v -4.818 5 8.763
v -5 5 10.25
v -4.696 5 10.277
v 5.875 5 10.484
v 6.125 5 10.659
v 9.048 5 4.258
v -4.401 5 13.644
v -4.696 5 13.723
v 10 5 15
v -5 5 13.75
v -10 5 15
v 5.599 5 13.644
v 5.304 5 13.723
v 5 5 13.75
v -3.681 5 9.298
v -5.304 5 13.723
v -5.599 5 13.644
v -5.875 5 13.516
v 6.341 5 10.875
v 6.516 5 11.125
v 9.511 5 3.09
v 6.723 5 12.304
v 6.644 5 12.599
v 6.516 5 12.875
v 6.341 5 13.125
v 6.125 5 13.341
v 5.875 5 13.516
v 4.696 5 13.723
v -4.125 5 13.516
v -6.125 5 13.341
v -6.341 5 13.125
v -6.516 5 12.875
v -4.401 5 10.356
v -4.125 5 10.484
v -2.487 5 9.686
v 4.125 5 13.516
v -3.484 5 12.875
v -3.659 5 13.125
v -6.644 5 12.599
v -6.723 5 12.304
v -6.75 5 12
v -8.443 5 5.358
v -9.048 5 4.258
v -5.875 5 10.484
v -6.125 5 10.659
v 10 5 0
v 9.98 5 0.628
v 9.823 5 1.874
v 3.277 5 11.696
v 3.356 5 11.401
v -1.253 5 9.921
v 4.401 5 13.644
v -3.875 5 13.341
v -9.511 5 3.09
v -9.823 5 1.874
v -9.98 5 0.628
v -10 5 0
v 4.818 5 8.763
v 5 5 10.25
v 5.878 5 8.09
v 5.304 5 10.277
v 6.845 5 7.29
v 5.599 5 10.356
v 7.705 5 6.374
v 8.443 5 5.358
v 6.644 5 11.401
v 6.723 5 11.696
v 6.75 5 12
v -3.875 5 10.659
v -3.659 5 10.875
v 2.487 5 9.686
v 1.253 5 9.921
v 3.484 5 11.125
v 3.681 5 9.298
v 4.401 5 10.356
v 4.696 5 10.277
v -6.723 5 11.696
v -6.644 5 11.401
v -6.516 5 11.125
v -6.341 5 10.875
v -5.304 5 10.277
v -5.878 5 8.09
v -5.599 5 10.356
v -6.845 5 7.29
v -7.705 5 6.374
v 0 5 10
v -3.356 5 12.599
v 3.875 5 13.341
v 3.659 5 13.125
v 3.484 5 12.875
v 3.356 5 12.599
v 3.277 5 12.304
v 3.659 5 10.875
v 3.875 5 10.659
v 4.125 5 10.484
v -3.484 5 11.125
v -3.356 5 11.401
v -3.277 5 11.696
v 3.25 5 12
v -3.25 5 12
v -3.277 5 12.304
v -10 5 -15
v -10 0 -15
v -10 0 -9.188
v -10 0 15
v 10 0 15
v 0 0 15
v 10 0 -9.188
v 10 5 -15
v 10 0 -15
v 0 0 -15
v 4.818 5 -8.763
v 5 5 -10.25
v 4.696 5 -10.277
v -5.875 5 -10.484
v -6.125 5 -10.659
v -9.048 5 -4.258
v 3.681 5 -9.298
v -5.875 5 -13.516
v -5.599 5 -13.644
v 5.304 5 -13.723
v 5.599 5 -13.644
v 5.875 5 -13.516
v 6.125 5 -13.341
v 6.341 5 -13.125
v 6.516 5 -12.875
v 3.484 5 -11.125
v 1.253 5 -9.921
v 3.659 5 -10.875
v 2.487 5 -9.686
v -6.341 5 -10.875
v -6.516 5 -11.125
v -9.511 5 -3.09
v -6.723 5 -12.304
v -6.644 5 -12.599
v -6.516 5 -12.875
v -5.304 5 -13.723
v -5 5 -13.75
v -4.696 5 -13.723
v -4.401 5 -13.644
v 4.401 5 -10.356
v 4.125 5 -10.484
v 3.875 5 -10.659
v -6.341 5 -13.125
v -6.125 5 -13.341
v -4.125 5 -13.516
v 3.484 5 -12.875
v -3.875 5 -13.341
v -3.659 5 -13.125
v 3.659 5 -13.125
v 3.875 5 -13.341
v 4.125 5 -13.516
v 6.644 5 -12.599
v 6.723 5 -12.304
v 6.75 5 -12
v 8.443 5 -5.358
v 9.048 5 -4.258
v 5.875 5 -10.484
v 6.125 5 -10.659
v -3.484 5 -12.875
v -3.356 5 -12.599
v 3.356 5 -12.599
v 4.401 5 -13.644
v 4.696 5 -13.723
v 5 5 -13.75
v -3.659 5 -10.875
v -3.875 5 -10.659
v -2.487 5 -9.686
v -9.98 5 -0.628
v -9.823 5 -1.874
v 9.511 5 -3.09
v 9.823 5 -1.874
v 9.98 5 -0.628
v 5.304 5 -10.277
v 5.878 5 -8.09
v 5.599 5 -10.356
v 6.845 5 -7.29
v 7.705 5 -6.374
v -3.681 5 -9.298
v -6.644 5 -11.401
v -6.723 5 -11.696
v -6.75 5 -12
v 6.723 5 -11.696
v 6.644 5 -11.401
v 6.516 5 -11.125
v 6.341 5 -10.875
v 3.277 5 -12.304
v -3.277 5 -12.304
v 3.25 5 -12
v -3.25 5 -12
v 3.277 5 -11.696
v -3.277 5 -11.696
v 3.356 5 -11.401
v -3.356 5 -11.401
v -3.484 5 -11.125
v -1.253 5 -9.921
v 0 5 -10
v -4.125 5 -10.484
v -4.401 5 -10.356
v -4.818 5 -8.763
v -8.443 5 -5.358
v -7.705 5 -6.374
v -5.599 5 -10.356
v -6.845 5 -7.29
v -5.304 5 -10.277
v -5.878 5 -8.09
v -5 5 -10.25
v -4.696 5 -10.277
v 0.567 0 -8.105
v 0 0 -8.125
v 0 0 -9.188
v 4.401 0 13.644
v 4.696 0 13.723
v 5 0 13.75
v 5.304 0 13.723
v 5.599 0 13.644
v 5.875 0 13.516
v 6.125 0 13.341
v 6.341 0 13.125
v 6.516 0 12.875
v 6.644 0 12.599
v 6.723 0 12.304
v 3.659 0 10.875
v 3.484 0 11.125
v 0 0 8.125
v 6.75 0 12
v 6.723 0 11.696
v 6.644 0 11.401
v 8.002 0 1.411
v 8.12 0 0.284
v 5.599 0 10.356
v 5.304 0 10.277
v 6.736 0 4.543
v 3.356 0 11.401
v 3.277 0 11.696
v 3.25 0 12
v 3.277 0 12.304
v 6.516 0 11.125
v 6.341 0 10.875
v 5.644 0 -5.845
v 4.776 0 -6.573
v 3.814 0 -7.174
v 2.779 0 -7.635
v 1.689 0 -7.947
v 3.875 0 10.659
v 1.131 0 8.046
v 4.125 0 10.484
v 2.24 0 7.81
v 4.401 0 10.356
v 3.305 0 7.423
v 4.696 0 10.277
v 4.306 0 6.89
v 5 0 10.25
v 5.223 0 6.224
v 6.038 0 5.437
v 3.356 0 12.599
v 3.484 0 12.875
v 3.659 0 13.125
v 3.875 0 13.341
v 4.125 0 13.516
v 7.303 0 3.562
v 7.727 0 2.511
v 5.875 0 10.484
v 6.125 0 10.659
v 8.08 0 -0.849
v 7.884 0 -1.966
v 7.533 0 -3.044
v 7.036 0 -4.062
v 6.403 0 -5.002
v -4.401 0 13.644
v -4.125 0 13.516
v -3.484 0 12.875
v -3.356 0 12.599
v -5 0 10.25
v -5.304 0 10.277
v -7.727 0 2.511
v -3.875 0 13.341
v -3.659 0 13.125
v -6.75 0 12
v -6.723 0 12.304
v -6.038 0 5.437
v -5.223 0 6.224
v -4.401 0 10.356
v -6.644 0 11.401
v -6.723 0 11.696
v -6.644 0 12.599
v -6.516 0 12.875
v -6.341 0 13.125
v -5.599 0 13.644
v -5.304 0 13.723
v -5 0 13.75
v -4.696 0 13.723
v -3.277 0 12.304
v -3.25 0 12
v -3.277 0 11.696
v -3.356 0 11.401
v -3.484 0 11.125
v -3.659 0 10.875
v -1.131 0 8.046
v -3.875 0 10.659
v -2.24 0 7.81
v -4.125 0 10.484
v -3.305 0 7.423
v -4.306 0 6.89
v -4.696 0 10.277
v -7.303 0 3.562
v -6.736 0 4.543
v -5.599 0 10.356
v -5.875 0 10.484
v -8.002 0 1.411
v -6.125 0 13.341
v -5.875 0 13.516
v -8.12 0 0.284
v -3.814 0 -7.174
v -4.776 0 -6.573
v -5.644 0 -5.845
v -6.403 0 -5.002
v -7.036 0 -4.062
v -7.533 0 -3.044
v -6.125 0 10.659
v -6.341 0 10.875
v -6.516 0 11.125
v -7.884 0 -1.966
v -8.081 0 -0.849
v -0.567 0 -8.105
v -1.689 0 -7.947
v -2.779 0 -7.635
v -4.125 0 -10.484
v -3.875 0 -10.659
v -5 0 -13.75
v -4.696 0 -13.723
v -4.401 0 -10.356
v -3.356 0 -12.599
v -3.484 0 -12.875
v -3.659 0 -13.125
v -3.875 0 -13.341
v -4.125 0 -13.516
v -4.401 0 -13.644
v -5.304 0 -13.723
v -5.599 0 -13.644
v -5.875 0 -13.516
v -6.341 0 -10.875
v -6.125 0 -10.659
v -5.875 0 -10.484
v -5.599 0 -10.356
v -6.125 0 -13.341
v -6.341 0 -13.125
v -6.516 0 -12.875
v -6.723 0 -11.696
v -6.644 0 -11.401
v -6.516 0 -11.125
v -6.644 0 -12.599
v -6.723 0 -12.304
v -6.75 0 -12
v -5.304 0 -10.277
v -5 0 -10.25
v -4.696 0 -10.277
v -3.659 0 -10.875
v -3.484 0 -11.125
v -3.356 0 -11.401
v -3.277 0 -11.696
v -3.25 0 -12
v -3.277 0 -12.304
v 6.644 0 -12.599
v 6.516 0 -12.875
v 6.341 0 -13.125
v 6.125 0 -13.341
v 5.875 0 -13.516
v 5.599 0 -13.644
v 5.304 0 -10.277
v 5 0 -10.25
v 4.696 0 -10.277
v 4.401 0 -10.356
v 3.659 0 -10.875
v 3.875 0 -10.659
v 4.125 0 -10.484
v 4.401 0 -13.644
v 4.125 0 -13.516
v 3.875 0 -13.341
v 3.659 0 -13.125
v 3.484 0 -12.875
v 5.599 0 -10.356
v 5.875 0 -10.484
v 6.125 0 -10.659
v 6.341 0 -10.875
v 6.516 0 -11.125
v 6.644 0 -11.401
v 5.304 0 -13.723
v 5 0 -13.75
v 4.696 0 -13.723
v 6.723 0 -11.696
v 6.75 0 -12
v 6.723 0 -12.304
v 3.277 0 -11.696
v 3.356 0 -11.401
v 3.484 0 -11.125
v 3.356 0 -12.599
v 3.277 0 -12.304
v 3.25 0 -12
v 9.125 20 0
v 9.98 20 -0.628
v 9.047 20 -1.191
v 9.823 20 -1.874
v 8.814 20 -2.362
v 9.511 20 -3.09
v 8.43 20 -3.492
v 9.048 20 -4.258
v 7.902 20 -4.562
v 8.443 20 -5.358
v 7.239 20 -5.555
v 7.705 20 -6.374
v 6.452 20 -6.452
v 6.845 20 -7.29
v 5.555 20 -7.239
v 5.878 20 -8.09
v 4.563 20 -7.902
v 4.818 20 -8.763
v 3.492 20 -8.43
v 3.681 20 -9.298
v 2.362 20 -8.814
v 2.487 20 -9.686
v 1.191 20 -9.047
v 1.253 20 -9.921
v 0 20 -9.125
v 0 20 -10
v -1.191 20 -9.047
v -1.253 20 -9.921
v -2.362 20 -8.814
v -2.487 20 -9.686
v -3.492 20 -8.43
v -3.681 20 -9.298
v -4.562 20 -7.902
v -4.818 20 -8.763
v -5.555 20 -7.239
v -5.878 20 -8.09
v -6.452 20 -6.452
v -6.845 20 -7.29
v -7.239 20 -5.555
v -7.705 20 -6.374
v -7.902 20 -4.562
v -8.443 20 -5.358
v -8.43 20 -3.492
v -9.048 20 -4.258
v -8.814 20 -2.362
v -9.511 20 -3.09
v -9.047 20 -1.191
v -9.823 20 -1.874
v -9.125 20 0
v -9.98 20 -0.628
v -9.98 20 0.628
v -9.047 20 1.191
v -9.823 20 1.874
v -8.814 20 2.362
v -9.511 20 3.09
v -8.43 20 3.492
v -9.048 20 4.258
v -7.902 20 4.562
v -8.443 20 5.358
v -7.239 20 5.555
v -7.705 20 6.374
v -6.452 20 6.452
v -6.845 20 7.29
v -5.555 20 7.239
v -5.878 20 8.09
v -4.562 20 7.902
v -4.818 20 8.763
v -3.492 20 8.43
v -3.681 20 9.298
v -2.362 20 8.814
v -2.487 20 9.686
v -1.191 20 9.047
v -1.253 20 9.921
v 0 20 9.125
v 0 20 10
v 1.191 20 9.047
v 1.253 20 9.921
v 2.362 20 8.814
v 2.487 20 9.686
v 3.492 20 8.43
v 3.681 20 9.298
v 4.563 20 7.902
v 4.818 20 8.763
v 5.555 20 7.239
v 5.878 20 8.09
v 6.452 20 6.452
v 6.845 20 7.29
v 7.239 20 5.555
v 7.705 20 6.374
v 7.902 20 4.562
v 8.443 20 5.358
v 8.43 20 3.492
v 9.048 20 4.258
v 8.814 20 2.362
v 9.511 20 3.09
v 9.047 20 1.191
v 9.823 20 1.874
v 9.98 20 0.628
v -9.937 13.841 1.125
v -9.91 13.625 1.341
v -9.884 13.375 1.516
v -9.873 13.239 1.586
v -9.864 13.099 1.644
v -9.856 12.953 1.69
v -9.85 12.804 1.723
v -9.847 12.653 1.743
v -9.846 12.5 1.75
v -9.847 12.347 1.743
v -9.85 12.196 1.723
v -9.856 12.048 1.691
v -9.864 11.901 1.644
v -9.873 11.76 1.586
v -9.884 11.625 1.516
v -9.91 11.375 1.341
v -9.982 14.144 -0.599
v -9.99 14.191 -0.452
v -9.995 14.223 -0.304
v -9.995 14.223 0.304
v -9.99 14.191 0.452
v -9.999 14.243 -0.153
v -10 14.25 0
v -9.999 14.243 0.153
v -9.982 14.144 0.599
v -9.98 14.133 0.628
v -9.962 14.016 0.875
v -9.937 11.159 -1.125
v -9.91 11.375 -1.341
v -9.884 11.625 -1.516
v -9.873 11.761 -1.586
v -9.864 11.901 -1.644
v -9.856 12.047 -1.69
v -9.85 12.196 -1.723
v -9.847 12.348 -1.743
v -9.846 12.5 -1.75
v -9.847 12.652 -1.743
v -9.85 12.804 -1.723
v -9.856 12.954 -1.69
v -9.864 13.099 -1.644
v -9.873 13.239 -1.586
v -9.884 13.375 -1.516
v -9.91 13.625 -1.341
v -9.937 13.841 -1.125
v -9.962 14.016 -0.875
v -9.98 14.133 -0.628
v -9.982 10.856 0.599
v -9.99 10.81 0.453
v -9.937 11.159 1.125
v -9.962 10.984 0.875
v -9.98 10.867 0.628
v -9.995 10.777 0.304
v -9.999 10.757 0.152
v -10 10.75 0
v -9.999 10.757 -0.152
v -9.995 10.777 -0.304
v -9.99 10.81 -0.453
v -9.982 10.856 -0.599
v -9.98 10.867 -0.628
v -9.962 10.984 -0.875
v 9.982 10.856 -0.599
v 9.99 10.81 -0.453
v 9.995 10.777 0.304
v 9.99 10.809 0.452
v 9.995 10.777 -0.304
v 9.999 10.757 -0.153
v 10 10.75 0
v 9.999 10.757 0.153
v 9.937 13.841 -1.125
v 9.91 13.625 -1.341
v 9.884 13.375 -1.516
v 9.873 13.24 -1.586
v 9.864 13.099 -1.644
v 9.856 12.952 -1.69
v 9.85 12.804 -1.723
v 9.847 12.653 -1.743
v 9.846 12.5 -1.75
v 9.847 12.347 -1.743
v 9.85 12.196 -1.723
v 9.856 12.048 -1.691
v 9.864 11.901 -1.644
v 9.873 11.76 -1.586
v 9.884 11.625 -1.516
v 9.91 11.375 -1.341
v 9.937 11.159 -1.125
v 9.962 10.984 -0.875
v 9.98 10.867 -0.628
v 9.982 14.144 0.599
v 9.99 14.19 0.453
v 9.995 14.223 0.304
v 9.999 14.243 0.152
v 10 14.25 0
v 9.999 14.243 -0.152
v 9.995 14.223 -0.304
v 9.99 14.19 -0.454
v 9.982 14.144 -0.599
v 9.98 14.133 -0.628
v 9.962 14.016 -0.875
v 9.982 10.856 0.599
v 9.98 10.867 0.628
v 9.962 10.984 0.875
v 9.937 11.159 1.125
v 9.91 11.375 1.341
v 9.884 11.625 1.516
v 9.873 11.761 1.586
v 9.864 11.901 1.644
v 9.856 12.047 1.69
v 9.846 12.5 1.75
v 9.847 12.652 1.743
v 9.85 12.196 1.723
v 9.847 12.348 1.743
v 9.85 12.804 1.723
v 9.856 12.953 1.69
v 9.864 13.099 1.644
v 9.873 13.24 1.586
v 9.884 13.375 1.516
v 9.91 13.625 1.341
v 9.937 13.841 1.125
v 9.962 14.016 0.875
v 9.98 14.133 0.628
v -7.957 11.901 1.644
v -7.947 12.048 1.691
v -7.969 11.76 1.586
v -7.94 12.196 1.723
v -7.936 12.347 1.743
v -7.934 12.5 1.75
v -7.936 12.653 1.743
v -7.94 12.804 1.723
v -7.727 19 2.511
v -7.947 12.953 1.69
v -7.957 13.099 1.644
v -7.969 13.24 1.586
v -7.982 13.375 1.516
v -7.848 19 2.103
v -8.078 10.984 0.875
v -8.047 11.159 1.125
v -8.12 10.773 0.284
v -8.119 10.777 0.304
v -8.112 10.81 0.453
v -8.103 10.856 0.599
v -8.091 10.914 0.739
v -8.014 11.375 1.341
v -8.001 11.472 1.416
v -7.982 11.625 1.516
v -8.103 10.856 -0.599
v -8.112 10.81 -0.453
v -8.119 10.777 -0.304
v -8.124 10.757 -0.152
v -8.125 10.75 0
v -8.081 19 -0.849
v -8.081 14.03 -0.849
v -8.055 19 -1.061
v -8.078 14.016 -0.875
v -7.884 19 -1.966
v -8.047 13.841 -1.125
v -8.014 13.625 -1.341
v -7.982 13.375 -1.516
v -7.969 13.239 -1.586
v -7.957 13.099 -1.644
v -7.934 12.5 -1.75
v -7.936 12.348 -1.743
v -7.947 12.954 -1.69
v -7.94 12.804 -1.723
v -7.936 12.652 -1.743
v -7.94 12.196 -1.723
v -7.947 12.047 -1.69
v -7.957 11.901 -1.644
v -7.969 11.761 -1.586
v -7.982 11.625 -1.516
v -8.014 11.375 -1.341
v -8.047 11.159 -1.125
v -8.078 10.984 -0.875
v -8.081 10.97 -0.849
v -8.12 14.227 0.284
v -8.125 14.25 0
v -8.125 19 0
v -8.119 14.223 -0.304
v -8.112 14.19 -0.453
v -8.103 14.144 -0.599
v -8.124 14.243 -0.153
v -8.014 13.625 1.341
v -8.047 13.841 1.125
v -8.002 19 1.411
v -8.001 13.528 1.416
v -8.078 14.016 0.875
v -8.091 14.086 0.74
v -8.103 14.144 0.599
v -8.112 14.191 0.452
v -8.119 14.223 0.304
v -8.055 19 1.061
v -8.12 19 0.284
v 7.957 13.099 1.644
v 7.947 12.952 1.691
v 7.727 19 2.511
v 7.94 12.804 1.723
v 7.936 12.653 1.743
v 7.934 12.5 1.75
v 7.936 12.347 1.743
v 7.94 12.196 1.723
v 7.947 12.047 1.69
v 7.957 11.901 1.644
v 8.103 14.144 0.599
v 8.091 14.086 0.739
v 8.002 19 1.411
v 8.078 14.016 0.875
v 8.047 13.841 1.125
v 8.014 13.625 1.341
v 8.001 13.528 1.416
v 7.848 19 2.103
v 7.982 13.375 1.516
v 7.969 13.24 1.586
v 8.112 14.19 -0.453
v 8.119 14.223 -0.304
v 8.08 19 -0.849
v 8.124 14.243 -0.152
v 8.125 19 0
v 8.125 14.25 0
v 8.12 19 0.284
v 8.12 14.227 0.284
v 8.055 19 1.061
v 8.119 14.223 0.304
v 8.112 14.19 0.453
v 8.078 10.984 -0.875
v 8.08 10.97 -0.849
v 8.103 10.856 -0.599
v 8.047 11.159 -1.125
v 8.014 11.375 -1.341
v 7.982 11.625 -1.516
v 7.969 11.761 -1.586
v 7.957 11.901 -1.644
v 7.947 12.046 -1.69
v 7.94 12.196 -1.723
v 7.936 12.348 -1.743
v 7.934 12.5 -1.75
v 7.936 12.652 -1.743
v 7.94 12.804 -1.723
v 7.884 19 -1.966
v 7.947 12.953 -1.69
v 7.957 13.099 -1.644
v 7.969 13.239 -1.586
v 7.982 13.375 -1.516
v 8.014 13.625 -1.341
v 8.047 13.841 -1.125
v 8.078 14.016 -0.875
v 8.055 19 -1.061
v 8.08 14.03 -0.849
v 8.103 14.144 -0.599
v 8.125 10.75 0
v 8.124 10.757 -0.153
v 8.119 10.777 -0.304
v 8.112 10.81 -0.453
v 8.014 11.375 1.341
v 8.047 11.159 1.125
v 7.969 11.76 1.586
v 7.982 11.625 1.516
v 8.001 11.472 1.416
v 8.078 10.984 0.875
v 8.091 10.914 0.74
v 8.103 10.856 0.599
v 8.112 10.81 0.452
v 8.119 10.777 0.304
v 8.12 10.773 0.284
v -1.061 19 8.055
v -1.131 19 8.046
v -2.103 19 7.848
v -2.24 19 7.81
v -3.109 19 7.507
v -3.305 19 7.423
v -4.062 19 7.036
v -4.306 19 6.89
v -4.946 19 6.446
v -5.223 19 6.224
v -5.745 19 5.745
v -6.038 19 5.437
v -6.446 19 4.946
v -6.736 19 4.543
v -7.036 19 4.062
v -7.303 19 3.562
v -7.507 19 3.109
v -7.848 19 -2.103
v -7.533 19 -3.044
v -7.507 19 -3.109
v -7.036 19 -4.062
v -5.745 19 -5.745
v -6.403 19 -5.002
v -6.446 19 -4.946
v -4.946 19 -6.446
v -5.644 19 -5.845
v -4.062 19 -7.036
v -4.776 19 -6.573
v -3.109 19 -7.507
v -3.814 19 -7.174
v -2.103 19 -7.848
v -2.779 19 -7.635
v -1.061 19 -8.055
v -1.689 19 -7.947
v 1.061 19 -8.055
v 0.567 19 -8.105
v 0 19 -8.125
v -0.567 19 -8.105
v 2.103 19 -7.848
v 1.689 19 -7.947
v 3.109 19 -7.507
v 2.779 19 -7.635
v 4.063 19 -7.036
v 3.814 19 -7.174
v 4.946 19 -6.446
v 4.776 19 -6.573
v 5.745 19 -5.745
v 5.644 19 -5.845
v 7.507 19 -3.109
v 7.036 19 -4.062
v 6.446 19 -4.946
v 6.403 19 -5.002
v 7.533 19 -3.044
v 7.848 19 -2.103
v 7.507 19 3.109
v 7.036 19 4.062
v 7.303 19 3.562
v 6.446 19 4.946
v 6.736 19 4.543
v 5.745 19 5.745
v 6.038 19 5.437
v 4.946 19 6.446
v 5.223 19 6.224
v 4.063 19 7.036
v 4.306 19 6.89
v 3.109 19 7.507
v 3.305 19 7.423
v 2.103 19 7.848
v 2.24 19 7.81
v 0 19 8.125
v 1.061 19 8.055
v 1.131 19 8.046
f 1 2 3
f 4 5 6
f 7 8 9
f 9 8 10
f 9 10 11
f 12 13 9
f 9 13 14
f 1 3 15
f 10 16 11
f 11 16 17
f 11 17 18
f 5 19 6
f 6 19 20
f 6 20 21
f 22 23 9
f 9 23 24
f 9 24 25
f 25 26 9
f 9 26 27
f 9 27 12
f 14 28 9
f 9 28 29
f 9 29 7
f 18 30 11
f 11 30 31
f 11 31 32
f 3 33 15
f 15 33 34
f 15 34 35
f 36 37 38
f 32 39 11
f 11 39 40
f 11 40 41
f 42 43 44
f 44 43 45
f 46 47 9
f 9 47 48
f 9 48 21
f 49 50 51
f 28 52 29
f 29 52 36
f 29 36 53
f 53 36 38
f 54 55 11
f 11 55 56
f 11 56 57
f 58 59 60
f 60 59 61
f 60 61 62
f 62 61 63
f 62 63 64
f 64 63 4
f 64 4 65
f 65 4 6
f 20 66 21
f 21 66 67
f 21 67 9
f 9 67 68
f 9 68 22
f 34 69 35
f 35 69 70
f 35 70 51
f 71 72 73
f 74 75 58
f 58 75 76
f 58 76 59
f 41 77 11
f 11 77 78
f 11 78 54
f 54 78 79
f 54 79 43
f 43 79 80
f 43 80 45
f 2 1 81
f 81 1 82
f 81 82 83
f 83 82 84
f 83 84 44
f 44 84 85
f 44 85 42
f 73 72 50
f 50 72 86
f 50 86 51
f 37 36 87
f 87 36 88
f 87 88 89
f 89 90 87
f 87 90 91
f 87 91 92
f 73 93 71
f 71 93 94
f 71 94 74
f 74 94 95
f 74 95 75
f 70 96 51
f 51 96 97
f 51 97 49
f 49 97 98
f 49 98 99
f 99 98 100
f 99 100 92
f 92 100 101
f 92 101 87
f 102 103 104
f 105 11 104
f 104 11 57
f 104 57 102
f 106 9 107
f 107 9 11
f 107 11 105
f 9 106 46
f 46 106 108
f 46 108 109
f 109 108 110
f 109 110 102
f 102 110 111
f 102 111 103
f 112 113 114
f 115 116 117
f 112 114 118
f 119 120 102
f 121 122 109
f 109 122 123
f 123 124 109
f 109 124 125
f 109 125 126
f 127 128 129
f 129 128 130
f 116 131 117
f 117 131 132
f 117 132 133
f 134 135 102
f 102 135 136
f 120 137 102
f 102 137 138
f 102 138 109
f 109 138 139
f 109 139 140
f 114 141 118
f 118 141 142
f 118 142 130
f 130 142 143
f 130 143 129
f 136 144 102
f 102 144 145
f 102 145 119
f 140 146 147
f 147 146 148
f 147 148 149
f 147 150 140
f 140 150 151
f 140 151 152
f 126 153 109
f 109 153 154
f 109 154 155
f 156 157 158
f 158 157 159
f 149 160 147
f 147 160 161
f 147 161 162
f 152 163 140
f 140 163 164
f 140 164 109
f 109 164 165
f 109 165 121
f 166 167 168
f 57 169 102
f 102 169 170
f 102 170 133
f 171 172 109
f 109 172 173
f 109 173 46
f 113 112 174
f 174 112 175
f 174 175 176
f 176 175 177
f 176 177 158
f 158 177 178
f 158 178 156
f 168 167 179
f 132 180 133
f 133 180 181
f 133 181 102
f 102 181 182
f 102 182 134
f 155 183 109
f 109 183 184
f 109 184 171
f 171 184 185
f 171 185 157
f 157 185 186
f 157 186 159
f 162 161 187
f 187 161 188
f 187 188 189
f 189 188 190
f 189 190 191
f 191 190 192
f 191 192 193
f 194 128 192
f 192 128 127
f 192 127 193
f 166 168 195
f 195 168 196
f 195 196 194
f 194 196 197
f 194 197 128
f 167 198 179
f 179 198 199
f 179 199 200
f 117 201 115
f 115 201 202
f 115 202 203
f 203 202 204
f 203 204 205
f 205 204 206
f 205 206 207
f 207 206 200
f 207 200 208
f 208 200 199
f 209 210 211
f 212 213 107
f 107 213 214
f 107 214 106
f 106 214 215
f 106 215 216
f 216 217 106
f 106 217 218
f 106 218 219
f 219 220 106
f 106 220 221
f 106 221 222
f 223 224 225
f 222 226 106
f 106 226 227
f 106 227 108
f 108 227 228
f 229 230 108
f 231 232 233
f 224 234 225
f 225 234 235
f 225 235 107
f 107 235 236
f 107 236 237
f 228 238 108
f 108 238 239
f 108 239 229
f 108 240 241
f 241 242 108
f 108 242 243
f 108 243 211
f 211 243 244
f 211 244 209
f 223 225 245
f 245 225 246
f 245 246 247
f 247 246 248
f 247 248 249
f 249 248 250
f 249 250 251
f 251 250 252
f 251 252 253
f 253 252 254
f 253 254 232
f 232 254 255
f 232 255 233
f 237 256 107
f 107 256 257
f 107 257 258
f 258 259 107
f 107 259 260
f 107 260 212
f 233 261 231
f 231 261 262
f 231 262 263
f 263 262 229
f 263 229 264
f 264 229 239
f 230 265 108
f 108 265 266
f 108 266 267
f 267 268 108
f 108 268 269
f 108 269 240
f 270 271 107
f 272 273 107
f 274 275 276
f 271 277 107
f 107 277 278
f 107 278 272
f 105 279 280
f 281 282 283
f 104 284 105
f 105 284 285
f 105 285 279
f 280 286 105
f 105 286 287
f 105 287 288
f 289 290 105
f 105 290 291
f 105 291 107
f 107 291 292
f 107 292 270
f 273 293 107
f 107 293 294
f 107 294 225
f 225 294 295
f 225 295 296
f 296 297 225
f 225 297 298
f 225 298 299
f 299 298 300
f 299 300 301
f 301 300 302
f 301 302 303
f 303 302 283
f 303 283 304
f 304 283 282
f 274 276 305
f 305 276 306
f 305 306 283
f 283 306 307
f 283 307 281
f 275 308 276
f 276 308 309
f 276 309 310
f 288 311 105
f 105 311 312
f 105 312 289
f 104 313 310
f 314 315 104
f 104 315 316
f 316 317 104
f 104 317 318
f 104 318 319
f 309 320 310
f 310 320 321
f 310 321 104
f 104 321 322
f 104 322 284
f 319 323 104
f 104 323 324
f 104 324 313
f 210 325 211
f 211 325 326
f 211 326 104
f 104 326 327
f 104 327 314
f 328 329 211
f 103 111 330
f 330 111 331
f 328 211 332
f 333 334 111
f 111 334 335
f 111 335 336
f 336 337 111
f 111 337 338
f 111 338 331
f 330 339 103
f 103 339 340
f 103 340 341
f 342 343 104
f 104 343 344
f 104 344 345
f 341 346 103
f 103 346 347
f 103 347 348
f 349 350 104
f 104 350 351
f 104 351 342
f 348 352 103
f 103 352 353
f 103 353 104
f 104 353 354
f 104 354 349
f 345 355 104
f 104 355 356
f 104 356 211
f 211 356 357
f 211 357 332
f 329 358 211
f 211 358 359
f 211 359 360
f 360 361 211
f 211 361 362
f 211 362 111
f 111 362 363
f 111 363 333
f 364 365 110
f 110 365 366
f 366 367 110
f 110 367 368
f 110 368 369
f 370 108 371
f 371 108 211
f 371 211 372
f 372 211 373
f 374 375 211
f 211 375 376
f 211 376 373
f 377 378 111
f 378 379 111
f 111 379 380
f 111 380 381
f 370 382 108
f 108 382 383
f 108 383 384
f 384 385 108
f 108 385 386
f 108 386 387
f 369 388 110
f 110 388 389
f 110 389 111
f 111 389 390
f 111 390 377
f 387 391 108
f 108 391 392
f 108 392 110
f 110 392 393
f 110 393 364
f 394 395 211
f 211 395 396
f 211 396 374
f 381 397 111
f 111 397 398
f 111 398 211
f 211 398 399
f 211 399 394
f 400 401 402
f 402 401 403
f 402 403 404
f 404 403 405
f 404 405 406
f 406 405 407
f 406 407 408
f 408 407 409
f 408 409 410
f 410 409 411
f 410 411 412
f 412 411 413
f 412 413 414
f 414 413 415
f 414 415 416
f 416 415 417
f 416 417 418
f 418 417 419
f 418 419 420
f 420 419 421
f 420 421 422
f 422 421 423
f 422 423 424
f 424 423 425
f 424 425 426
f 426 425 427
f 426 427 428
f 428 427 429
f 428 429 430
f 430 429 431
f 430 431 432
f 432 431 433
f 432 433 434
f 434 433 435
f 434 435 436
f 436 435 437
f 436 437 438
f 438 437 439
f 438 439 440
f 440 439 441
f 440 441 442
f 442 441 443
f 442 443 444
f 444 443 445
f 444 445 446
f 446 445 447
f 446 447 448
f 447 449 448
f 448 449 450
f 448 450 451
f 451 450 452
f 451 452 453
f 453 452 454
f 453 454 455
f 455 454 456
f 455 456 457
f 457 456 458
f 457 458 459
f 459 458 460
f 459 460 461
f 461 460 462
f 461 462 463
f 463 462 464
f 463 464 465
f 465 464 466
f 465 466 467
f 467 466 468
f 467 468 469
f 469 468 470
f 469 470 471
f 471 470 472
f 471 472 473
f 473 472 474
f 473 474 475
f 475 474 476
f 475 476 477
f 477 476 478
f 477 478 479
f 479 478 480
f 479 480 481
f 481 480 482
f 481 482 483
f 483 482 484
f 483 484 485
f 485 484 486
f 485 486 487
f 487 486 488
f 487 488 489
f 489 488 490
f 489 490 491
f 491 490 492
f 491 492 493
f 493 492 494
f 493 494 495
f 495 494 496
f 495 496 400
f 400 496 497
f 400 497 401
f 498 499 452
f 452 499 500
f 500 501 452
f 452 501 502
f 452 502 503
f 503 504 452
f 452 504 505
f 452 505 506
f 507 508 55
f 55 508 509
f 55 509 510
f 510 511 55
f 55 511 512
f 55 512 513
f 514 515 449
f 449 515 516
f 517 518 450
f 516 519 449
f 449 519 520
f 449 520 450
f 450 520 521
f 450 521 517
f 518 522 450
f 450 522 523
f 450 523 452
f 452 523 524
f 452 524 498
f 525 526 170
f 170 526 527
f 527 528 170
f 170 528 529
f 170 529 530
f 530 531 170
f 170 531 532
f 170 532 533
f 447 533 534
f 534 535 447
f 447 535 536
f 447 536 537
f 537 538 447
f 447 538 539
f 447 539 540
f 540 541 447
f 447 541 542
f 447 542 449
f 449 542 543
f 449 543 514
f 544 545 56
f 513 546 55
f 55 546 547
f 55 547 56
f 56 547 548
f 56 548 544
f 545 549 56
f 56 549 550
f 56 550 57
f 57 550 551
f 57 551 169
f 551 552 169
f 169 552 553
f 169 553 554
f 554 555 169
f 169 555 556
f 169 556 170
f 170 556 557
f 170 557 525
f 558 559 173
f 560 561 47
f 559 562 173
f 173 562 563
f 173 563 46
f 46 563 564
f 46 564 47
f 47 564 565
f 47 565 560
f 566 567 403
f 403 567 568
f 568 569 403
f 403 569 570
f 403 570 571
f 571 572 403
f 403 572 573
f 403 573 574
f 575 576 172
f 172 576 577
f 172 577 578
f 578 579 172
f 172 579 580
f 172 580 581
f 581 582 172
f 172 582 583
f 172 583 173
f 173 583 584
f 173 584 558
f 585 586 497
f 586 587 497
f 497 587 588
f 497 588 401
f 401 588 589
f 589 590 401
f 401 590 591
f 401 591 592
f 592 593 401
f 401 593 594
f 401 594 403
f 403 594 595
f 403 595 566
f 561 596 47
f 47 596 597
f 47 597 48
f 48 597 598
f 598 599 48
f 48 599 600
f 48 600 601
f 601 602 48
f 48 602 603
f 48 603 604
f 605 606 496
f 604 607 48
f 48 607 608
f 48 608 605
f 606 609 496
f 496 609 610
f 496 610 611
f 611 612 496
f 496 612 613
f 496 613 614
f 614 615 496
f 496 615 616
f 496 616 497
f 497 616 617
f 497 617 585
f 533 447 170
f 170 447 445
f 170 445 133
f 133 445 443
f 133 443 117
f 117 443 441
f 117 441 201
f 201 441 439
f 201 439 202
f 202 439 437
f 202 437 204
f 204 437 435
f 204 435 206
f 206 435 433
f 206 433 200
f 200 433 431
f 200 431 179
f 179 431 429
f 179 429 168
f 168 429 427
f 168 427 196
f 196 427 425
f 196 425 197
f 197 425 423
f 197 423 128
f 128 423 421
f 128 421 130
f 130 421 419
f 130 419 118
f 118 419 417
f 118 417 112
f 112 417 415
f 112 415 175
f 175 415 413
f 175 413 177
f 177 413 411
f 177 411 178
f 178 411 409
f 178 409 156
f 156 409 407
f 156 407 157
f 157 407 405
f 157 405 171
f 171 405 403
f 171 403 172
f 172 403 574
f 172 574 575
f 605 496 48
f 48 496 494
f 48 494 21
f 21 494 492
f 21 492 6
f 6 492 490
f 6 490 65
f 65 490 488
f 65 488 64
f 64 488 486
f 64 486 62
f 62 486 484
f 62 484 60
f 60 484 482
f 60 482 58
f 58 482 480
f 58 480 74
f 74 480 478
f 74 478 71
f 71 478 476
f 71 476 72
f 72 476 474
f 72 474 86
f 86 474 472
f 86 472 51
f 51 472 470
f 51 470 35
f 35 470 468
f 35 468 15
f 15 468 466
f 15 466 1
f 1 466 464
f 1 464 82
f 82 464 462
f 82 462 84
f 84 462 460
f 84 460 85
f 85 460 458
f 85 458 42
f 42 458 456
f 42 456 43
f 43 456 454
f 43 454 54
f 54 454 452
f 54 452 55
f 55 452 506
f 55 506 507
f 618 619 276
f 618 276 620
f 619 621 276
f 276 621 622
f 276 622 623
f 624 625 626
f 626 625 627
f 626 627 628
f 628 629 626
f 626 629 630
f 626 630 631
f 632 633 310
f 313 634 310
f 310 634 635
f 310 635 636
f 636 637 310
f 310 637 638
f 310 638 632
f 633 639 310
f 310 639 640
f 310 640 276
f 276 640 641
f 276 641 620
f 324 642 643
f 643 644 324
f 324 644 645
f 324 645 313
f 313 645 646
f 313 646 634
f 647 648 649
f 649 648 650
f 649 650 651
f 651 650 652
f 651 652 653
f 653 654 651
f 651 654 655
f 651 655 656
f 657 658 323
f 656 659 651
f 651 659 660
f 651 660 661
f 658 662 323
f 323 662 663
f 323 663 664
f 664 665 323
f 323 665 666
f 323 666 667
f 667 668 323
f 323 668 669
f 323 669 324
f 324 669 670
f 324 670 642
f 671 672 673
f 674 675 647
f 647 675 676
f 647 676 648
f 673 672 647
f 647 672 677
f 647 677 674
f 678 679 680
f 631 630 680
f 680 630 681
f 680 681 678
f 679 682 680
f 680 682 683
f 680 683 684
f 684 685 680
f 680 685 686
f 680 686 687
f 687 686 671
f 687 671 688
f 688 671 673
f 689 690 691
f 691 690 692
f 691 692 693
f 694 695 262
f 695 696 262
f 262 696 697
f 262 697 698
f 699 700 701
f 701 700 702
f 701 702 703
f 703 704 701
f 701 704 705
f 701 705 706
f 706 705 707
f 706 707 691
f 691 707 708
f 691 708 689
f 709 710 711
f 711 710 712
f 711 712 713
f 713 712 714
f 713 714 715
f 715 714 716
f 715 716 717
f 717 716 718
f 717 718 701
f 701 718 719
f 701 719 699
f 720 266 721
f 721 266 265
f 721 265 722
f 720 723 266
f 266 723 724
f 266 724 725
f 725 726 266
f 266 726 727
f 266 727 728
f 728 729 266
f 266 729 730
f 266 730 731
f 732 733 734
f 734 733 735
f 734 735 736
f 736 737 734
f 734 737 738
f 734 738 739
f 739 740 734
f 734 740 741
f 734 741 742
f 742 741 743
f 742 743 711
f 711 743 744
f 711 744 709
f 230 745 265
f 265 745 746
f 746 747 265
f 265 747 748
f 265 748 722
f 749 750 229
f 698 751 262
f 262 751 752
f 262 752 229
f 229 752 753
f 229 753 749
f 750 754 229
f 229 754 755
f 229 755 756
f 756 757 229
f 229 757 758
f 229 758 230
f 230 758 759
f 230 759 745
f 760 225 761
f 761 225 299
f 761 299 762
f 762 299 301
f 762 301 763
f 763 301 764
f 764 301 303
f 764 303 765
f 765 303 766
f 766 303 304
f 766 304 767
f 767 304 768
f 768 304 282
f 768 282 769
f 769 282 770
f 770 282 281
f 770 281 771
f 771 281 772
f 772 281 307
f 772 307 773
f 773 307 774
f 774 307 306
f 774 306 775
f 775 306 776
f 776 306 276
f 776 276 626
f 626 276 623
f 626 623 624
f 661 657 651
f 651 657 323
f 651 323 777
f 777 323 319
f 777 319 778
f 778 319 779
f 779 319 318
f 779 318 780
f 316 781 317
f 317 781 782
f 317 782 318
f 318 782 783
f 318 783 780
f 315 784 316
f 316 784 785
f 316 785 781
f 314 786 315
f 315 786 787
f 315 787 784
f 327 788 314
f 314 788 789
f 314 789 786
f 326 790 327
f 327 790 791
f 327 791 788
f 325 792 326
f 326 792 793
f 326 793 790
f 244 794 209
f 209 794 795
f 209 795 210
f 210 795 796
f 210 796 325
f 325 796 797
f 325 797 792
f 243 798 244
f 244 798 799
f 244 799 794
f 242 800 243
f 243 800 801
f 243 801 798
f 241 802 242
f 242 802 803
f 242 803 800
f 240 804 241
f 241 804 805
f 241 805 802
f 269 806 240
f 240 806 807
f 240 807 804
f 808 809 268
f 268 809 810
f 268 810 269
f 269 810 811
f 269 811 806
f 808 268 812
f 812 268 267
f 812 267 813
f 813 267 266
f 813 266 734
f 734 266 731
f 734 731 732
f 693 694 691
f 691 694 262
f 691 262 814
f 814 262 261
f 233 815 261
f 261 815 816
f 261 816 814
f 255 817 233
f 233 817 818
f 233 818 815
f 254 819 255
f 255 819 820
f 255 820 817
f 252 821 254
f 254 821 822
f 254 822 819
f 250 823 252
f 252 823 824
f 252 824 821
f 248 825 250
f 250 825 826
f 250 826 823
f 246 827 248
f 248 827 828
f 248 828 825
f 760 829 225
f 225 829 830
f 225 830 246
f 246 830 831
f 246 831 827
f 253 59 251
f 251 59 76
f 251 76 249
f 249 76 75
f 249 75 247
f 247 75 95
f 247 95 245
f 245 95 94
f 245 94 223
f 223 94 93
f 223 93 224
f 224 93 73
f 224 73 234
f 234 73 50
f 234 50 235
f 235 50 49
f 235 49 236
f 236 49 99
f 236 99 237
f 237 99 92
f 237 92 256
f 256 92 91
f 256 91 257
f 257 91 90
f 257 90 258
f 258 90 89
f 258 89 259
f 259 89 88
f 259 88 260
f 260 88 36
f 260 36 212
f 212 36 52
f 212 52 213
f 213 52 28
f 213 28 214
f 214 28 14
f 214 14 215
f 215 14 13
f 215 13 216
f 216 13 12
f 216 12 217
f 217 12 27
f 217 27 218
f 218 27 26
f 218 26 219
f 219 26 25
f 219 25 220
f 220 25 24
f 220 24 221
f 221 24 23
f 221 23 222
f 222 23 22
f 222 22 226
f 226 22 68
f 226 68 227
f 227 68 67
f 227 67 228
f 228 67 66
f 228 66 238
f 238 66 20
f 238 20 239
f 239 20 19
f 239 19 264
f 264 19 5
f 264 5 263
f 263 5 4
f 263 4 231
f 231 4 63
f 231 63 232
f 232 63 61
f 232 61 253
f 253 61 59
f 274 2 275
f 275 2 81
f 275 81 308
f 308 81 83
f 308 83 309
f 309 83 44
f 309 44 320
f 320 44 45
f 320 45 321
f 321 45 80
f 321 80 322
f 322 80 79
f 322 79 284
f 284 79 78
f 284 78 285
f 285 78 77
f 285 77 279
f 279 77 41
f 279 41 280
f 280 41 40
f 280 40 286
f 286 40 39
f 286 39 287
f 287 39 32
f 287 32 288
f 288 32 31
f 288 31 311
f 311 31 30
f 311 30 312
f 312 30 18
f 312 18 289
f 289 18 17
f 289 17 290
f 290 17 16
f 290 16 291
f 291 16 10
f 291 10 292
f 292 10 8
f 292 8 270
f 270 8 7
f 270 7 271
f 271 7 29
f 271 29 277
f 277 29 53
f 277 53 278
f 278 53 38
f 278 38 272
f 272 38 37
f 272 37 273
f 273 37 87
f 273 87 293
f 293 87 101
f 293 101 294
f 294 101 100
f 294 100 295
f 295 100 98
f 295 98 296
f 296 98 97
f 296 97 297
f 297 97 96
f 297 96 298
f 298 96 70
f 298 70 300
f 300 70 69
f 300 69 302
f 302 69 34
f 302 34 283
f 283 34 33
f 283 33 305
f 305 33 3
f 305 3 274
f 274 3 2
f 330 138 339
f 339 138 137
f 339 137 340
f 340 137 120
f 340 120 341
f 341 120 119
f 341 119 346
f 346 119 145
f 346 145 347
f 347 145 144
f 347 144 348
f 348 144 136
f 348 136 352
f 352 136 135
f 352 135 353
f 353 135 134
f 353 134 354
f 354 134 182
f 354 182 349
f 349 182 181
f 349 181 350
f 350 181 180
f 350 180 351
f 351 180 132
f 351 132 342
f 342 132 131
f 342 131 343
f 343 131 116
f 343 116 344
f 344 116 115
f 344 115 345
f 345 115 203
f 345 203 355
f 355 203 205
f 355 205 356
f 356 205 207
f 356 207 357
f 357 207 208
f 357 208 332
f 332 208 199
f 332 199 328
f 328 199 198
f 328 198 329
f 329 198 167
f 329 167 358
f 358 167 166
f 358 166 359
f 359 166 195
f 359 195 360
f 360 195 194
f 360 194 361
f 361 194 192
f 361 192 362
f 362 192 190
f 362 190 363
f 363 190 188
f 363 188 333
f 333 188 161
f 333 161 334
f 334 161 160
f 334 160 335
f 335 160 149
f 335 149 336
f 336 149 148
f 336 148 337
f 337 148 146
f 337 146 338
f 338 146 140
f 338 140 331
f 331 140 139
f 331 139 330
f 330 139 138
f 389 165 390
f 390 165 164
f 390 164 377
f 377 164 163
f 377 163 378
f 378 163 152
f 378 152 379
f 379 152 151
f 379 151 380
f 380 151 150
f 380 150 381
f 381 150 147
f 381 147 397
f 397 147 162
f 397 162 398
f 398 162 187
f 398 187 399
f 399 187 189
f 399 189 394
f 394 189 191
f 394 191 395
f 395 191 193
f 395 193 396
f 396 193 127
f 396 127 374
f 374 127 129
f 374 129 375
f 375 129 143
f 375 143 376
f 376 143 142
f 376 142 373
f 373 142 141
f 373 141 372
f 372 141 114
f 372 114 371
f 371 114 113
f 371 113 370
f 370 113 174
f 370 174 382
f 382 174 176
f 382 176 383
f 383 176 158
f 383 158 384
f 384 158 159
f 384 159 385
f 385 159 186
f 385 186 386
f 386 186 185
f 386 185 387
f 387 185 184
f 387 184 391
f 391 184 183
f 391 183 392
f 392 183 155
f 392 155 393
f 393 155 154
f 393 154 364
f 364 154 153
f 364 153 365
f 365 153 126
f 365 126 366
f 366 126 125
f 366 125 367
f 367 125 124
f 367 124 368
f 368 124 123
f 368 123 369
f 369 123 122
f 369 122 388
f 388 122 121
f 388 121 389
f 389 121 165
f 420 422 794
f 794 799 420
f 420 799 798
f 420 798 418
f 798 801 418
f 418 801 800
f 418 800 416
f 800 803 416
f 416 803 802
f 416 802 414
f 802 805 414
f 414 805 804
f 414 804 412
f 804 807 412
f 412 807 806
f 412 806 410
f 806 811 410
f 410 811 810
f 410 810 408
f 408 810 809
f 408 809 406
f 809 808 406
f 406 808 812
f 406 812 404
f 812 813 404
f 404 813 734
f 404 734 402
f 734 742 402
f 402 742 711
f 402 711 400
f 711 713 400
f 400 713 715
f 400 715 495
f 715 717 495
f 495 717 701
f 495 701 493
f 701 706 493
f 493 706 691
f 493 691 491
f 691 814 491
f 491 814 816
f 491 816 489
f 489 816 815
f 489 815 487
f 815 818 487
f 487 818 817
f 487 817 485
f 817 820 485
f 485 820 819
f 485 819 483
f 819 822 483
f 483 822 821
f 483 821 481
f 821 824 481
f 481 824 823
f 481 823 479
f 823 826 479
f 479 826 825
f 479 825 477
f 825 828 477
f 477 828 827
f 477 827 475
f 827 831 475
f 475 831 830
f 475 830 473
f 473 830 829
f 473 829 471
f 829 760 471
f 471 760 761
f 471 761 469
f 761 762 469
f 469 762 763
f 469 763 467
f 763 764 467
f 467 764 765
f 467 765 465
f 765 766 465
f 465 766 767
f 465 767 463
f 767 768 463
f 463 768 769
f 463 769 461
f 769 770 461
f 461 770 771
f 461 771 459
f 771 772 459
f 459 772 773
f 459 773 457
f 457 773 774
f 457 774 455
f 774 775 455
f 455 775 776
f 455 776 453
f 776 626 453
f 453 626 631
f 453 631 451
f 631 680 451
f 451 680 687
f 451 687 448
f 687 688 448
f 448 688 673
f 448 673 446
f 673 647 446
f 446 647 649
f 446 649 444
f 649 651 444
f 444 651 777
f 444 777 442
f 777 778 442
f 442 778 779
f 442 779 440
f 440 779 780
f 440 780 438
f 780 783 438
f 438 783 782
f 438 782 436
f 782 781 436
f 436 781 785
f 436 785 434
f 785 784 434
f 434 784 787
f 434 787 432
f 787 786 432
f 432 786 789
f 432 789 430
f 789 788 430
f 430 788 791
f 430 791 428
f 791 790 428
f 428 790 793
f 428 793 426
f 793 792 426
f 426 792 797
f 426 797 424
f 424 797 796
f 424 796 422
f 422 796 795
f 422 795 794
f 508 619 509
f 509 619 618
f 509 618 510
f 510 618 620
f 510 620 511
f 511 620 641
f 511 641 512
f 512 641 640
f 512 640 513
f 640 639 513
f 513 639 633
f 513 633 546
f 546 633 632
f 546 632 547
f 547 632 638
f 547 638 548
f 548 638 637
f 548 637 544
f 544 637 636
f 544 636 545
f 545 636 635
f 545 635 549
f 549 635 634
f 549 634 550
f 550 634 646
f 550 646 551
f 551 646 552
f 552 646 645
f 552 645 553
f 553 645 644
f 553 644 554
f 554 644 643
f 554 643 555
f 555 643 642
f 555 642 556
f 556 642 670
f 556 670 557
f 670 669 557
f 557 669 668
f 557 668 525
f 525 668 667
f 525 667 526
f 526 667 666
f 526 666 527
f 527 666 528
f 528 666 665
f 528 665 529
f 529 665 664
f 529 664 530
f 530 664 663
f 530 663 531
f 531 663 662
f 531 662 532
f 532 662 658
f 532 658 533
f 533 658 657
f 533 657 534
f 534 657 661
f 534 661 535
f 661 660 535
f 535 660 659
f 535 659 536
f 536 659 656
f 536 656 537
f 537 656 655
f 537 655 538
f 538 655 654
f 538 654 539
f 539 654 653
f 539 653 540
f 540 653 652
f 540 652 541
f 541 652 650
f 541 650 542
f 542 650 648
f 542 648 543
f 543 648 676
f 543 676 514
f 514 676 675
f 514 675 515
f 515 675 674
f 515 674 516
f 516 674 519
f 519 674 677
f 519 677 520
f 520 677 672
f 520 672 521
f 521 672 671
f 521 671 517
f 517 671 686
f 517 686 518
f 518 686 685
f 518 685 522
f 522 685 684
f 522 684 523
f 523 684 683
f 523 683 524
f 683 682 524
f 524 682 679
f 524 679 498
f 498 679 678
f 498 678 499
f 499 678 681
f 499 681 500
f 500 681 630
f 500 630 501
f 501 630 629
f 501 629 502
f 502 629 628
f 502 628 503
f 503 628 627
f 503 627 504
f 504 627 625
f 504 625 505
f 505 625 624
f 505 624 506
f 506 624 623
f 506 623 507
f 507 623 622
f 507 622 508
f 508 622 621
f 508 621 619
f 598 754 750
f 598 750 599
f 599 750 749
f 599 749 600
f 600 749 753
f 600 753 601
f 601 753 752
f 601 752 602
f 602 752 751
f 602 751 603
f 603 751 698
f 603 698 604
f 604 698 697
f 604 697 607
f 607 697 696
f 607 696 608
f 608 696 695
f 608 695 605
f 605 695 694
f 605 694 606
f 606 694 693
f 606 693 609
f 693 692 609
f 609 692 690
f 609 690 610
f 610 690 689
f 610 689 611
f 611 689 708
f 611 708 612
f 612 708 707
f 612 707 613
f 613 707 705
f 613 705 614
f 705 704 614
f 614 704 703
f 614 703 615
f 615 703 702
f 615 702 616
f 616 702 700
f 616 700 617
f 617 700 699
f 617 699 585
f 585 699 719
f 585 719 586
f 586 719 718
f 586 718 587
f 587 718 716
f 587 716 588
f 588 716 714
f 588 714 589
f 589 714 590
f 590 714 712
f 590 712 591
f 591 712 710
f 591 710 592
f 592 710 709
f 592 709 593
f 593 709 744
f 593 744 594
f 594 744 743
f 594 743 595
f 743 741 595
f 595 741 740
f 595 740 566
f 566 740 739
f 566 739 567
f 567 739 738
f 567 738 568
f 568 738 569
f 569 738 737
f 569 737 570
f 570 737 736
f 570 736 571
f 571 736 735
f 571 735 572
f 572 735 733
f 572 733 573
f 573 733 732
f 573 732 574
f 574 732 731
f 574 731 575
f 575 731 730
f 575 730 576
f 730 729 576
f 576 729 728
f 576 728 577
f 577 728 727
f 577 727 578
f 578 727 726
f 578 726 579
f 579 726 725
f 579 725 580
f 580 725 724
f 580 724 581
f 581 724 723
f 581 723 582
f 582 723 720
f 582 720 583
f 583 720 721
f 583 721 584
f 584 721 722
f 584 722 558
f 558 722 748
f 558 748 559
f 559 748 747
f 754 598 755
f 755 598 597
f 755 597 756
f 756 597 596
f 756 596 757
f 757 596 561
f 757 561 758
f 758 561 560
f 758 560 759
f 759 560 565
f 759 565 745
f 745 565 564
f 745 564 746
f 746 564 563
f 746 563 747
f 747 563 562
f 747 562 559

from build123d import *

# Parameters (mm, degrees)
SKETCH1_W               = 20
SKETCH1_H               = 30
BOSS_EXTRUDE1_DEPTH     = 5
SKETCH2_R               = 10
SKETCH2_R_2             = 8.125
BOSS_EXTRUDE2_DEPTH     = 15
CUT_EXTRUDE3_DEPTH      = 24.452078799
CUT_EXTRUDE3_DEPTH_BACK = 24.452078799
SKETCH5_R               = 8.125
SKETCH3_R               = 1.75
CUT_EXTRUDE1_DEPTH      = 5
CHAMFER1_SIZE           = 1
CUT_EXTRUDE2_DEPTH      = 27.925824036
CUT_EXTRUDE2_DEPTH_BACK = 27.925824036
SKETCH4_R               = 1.75


with BuildPart() as part:
    # Sketch1 → Boss-Extrude1 (new body)
    with BuildSketch(Plane(origin=(0, 0, 0), x_dir=(1, 0, 0), z_dir=(0, 1, 0))):
        Rectangle(SKETCH1_W, SKETCH1_H)
    extrude(amount=BOSS_EXTRUDE1_DEPTH)

    # Sketch2 → Boss-Extrude2 (add)
    with BuildSketch(Plane(origin=(0, 5, 0), x_dir=(1, 0, 0), z_dir=(0, 1, 0))):
        with Locations(Location((0, 0, 0), (0, 0, 180))):
            Circle(SKETCH2_R)
        with Locations(Location((0, 0, 0), (0, 0, 270))):
            Circle(SKETCH2_R_2, mode=Mode.SUBTRACT)
    extrude(amount=BOSS_EXTRUDE2_DEPTH)

    # Sketch5 → Cut-Extrude3 (cut, two sides: drawn at the far end of the back side and taken through both)
    with BuildSketch(Plane(origin=(0, 5, 0), x_dir=(1, 0, 0), z_dir=(0, 1, 0)).offset(-CUT_EXTRUDE3_DEPTH_BACK)):
        with Locations(Location((0, 0, 0), (0, 0, 270))):
            Circle(SKETCH5_R)
    extrude(amount=CUT_EXTRUDE3_DEPTH + CUT_EXTRUDE3_DEPTH_BACK, mode=Mode.SUBTRACT)

    # Sketch3 → Cut-Extrude1 (cut)
    with BuildSketch(Plane(origin=(0, 5, 0), x_dir=(1, 0, 0), z_dir=(0, 1, 0))):
        with Locations(Location((-5, 12, 0), (0, 0, 270))):
            Circle(SKETCH3_R)
        with Locations(Location((5, 12, 0), (0, 0, 270))):
            Circle(SKETCH3_R)
        with Locations(Location((5, -12, 0), (0, 0, 270))):
            Circle(SKETCH3_R)
        with Locations(Location((-5, -12, 0), (0, 0, 270))):
            Circle(SKETCH3_R)
    extrude(amount=-CUT_EXTRUDE1_DEPTH, mode=Mode.SUBTRACT)

    # Chamfer1
    chamfer1_edges = [part.edges().sort_by_distance(p)[0] for p in [
        (0, 20, -8.125),
    ]]
    chamfer(chamfer1_edges, length=CHAMFER1_SIZE)

    # Sketch4 → Cut-Extrude2 (cut, two sides: drawn at the far end of the back side and taken through both)
    with BuildSketch(Plane(origin=(0, 0, 0), x_dir=(0, 0, -1), z_dir=(1, 0, 0)).offset(-CUT_EXTRUDE2_DEPTH_BACK)):
        with Locations((0, 12.5)):
            Circle(SKETCH4_R)
    extrude(amount=CUT_EXTRUDE2_DEPTH + CUT_EXTRUDE2_DEPTH_BACK, mode=Mode.SUBTRACT)


solid = part.part
